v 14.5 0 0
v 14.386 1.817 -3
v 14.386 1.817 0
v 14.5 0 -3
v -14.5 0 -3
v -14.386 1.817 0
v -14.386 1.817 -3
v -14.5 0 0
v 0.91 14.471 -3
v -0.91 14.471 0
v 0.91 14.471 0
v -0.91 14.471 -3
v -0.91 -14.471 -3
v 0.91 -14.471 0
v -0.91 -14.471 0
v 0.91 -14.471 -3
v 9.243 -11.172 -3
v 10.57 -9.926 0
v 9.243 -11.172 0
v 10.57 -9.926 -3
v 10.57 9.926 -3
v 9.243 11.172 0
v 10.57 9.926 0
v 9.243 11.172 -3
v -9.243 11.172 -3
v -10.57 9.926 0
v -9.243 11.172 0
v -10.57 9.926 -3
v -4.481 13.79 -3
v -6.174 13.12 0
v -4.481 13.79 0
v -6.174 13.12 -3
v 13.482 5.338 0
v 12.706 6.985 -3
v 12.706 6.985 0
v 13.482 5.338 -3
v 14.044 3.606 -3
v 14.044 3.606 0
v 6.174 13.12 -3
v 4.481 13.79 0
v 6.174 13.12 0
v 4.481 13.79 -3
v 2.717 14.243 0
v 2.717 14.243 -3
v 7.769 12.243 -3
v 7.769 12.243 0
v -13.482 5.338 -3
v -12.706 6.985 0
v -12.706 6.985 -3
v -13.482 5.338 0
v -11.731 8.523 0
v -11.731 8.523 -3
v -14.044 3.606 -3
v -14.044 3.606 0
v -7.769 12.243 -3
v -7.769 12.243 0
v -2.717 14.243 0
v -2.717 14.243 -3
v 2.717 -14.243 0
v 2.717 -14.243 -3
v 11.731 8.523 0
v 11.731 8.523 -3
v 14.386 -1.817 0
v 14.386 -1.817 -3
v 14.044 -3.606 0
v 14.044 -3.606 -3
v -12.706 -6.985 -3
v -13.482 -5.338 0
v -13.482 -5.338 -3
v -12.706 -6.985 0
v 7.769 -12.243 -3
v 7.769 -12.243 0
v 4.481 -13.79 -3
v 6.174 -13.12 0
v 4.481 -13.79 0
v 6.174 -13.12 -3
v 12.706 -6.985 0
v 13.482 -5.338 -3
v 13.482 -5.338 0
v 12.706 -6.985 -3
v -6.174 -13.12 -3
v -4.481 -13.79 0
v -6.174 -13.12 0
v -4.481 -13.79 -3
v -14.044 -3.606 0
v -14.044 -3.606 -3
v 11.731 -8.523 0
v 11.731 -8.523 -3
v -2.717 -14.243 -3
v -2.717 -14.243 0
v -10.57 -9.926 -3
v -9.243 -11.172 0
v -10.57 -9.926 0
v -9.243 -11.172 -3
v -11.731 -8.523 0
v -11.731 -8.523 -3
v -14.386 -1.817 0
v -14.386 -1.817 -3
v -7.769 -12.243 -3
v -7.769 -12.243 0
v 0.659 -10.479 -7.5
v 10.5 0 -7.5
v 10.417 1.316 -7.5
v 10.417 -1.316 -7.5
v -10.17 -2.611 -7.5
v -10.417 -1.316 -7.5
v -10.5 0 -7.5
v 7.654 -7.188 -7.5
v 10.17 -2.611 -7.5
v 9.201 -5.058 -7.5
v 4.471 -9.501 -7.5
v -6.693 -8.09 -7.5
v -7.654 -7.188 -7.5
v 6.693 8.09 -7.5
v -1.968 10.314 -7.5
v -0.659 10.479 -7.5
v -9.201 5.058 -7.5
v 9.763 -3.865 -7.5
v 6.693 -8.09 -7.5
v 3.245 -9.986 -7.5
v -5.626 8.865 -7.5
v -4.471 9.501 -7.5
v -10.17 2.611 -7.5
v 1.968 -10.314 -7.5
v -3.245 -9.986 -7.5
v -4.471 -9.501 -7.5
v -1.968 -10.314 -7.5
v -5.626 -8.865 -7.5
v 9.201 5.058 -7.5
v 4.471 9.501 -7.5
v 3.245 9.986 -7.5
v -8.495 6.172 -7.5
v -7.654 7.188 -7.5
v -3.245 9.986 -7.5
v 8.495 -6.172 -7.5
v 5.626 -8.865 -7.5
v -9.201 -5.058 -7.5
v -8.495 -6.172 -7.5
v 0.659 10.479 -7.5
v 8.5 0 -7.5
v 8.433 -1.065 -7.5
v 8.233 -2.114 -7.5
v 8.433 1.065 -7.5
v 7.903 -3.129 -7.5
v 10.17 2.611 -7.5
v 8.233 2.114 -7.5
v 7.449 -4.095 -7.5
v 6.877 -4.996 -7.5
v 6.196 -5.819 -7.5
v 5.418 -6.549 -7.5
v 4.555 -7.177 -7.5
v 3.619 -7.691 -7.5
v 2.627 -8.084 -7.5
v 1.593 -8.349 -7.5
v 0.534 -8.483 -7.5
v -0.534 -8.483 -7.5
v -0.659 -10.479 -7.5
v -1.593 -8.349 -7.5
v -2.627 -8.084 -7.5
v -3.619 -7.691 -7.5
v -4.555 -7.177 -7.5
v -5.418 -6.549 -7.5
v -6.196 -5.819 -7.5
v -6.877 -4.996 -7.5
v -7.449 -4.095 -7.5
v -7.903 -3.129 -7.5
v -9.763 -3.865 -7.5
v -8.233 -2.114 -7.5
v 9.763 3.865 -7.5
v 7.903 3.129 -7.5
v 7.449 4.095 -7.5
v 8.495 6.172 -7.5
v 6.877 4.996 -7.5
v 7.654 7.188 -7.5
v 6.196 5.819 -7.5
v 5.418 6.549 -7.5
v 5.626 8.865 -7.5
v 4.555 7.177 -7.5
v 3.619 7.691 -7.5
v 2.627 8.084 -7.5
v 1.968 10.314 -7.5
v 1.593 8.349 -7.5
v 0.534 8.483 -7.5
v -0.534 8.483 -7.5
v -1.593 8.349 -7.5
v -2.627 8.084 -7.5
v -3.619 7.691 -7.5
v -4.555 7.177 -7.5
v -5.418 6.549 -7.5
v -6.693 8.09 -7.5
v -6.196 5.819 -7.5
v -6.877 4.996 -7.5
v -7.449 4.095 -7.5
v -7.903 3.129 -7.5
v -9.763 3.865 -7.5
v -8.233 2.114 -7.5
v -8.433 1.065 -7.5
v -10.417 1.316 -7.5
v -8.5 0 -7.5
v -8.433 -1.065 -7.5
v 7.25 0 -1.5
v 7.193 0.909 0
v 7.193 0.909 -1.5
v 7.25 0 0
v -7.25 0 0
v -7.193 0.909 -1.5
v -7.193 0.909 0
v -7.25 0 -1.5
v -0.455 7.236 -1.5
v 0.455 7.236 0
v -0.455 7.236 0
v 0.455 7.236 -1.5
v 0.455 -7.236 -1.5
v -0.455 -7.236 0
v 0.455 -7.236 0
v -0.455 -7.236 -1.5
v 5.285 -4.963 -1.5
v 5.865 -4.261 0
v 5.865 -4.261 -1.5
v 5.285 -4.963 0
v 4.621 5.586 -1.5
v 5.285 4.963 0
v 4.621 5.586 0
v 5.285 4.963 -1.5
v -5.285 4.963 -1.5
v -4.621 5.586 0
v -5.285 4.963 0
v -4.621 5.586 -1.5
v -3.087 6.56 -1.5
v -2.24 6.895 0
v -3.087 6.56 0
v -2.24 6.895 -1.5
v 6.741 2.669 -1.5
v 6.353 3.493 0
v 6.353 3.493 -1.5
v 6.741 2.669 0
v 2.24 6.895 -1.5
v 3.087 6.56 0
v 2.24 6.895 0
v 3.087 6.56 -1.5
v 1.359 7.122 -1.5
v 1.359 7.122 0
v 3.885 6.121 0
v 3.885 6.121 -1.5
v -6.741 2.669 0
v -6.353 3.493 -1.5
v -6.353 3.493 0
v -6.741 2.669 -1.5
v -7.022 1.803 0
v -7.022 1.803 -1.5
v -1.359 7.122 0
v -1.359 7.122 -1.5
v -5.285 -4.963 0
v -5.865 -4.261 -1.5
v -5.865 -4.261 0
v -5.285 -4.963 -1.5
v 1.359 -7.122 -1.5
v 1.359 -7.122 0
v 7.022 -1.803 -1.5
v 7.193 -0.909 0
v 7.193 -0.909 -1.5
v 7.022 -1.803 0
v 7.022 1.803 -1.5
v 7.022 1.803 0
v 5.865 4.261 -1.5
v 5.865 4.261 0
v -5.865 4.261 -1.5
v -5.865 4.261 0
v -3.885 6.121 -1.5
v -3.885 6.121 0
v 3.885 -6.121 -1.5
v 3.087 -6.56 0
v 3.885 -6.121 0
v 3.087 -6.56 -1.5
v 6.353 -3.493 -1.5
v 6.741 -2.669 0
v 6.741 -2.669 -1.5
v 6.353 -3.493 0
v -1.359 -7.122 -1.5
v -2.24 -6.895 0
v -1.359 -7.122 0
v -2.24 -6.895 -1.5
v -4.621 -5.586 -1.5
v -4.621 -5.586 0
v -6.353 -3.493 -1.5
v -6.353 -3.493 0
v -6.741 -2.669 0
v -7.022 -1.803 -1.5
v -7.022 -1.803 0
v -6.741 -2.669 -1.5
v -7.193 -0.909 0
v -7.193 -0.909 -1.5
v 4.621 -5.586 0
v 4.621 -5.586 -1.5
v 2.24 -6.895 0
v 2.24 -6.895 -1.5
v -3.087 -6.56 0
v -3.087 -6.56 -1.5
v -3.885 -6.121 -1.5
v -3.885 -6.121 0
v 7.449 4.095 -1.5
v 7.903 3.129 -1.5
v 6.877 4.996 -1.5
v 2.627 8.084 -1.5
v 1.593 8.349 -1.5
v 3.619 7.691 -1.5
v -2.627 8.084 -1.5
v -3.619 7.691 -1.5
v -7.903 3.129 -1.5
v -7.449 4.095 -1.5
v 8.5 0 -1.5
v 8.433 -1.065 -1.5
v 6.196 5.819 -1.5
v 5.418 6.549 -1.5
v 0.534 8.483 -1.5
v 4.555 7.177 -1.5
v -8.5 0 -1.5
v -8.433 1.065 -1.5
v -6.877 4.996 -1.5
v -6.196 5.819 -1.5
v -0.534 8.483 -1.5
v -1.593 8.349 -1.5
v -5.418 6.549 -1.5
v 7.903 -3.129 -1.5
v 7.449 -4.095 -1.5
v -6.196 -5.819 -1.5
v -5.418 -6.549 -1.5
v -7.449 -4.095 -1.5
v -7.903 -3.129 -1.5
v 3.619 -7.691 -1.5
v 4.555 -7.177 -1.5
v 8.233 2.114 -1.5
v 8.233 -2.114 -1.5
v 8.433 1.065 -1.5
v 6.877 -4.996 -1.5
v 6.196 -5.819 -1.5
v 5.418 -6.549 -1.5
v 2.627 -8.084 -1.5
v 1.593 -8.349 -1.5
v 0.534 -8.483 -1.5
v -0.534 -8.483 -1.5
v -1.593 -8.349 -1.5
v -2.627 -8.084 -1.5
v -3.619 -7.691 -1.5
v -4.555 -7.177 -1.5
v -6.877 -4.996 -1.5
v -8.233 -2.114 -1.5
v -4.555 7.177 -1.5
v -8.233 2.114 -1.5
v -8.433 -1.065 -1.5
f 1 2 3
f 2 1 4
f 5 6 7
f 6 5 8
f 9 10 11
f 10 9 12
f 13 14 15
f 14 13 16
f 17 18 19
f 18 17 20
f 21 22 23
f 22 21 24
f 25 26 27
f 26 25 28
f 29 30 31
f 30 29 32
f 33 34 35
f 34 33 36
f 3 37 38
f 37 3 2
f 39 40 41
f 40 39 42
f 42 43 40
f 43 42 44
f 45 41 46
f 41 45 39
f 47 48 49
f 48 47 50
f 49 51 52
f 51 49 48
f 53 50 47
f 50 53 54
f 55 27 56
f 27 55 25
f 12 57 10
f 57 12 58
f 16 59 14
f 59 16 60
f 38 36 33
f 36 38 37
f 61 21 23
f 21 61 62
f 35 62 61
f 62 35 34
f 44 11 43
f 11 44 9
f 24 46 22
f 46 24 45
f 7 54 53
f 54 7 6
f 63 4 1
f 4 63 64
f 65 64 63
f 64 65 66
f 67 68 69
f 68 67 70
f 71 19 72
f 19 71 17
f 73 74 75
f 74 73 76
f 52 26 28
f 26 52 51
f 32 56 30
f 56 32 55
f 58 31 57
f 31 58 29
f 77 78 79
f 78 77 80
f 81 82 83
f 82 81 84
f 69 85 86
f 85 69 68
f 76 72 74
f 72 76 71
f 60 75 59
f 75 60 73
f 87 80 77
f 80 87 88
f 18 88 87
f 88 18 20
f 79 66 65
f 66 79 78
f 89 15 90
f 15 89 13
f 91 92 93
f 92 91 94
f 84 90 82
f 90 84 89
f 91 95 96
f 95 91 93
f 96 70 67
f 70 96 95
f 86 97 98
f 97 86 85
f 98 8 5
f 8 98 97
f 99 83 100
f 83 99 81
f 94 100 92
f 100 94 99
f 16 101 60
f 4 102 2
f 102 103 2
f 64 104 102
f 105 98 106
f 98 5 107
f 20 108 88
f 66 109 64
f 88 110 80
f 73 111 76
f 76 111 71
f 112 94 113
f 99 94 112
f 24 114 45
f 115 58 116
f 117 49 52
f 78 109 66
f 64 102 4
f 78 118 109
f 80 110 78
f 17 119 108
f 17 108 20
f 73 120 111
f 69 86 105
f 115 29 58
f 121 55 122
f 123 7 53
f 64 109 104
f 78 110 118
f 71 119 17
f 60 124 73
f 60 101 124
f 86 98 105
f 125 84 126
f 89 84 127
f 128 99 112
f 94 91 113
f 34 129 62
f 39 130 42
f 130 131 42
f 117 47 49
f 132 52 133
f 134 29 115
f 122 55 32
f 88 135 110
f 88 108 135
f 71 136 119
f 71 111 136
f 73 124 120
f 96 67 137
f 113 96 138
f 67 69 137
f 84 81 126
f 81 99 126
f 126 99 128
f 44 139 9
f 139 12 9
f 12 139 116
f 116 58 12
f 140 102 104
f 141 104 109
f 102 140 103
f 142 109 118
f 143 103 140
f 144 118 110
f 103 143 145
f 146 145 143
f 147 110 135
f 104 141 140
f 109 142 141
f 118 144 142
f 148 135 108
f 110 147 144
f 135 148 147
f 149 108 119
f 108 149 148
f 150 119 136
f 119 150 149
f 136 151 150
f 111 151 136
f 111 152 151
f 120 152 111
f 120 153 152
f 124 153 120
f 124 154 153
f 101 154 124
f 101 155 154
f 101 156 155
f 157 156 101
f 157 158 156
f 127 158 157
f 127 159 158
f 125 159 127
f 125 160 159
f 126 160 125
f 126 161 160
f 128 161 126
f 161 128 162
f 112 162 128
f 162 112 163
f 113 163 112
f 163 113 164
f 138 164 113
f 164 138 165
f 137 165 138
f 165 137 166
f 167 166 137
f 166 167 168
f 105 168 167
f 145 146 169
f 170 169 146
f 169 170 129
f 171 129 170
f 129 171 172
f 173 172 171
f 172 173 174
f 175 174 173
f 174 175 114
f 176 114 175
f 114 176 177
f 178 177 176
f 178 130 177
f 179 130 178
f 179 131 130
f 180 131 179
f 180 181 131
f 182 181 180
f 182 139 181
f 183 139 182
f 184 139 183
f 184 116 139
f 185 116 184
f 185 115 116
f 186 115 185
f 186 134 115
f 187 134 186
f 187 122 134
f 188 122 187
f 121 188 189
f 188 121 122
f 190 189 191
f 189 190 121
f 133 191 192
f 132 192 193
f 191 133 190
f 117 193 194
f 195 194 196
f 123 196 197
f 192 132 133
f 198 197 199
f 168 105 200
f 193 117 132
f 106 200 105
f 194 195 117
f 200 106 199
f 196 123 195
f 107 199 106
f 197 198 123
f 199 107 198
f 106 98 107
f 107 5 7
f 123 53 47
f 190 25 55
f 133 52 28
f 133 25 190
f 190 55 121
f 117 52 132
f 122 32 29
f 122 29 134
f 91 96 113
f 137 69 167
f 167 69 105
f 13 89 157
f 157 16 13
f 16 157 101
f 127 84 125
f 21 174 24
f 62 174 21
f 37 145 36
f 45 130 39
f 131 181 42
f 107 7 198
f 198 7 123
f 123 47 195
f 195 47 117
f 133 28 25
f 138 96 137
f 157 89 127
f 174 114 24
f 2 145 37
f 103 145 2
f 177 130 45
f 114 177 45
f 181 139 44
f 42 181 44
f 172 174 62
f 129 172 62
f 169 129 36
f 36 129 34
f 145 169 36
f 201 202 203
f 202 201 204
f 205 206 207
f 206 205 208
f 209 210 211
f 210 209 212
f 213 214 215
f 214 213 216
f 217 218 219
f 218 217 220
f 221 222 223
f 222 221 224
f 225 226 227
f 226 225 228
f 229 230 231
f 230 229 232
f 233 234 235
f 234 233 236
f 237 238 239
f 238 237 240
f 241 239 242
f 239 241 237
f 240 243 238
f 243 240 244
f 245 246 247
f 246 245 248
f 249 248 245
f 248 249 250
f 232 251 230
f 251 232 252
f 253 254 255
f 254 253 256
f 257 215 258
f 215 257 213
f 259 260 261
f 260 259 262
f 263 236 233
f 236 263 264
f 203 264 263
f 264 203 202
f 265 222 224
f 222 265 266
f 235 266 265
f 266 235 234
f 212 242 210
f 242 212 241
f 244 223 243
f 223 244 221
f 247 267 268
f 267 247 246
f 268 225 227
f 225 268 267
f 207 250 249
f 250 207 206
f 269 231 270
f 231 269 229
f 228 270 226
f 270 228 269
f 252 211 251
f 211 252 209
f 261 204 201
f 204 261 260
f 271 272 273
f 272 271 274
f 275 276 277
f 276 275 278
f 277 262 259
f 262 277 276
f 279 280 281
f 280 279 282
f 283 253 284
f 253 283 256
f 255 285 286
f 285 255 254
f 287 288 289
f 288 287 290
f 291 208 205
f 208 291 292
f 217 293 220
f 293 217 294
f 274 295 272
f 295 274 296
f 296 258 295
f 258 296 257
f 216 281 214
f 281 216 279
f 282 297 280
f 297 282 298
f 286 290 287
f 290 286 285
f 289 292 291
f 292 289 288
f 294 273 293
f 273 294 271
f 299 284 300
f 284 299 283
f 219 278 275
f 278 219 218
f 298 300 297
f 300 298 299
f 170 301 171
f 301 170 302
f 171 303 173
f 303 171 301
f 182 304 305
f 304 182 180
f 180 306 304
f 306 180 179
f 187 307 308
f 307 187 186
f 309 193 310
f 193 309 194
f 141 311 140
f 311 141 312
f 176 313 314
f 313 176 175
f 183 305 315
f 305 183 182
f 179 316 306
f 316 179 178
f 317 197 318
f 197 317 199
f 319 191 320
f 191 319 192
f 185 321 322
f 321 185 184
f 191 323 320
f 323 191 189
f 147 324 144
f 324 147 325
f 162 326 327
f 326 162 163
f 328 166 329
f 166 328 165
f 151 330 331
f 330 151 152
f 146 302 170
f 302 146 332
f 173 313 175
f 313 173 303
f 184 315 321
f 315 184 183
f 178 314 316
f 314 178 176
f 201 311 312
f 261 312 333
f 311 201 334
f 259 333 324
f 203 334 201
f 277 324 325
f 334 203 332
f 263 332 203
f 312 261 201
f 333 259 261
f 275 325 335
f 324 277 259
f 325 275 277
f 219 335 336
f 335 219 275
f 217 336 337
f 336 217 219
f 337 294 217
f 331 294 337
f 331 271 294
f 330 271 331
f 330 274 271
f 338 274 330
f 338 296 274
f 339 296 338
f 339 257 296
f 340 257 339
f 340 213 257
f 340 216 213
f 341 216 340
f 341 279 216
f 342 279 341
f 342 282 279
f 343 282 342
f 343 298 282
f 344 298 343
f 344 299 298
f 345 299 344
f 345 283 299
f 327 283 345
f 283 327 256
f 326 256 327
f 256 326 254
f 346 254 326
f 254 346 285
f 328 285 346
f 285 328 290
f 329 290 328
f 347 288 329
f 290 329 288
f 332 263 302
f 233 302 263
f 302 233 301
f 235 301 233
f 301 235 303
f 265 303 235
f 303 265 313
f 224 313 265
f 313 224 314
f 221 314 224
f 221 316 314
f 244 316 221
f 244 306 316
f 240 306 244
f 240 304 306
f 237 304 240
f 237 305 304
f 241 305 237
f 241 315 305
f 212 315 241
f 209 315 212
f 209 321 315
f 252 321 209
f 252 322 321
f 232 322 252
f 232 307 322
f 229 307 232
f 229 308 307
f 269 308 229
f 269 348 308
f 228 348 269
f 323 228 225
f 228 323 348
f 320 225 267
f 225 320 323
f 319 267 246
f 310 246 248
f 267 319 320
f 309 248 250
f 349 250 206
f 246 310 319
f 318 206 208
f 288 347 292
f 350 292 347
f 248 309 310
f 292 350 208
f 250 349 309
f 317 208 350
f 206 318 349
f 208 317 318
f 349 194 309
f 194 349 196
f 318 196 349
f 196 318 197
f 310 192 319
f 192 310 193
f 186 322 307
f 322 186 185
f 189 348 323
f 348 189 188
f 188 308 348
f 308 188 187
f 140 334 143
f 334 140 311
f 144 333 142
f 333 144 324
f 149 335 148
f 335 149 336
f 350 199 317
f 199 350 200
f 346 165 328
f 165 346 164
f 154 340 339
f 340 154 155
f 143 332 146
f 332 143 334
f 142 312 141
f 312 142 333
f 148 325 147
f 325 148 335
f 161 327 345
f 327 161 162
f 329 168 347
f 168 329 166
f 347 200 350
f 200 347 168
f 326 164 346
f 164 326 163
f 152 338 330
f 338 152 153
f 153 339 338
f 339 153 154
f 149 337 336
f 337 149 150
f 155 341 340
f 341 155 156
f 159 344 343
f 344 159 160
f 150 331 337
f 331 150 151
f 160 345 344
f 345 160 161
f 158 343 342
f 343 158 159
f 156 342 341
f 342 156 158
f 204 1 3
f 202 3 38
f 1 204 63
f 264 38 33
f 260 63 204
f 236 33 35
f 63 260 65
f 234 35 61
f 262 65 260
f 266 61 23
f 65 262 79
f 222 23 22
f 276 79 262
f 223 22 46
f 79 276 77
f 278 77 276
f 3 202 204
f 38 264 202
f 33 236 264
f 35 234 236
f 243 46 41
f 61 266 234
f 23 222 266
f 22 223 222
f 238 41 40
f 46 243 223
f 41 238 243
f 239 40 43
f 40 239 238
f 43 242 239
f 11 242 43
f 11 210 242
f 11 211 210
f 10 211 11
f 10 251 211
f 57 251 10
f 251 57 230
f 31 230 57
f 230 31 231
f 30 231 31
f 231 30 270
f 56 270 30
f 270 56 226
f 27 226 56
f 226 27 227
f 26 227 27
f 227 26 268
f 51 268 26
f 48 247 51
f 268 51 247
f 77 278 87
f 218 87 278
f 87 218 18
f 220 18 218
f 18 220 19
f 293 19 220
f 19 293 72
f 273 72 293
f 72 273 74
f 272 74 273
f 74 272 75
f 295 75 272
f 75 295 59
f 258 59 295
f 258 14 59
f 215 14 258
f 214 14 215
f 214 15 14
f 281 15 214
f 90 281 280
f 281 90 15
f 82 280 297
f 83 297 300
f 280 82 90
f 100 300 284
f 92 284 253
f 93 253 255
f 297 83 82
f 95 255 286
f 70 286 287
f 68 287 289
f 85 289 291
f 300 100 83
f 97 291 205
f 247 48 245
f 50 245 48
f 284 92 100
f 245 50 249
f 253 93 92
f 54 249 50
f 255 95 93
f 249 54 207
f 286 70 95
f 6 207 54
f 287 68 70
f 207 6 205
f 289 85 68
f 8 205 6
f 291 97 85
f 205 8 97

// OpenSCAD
$fn = 50;


difference() {
	union() {
		translate(v = [0, 0, -3.0000000000]) {
			cylinder(h = 6, r = 14.5000000000);
		}
		translate(v = [0, 0, 3.0000000000]) {
			cylinder(h = 4.5000000000, r1 = 14.5000000000, r2 = 10.5000000000);
		}
		translate(v = [0, 0, -7.5000000000]) {
			cylinder(h = 4.5000000000, r1 = 10.5000000000, r2 = 14.5000000000);
		}
	}
	union() {
		translate(v = [0, 0, -100.0000000000]) {
			cylinder(h = 200, r = 5);
		}
		translate(v = [0, 0, 4.5000000000]) {
			translate(v = [0, 0, -3.0000000000]) {
				union() {
					difference() {
						#cylinder(h = 6, r = 8.5000000000);
						#cylinder(h = 6, r = 3.0000000000);
					}
					difference() {
						#translate(v = [0, 0, -50]) {
							cylinder(h = 100, r = 7.2500000000);
						}
					}
				}
			}
		}
		translate(v = [0, 0, -4.5000000000]) {
			translate(v = [0, 0, -3.0000000000]) {
				union() {
					difference() {
						#cylinder(h = 6, r = 8.5000000000);
						#cylinder(h = 6, r = 3.0000000000);
					}
					difference() {
						#translate(v = [0, 0, -50]) {
							cylinder(h = 100, r = 7.2500000000);
						}
					}
				}
			}
		}
		translate(v = [-250.0000000000, -250.0000000000, 0]) {
			cube(size = [500, 500, 500]);
		}
		translate(v = [-250.0000000000, -250.0000000000, 0]) {
			cube(size = [500, 500, 500]);
		}
		translate(v = [-250.0000000000, -250.0000000000, 0]) {
			cube(size = [500, 500, 500]);
		}
	}
}
